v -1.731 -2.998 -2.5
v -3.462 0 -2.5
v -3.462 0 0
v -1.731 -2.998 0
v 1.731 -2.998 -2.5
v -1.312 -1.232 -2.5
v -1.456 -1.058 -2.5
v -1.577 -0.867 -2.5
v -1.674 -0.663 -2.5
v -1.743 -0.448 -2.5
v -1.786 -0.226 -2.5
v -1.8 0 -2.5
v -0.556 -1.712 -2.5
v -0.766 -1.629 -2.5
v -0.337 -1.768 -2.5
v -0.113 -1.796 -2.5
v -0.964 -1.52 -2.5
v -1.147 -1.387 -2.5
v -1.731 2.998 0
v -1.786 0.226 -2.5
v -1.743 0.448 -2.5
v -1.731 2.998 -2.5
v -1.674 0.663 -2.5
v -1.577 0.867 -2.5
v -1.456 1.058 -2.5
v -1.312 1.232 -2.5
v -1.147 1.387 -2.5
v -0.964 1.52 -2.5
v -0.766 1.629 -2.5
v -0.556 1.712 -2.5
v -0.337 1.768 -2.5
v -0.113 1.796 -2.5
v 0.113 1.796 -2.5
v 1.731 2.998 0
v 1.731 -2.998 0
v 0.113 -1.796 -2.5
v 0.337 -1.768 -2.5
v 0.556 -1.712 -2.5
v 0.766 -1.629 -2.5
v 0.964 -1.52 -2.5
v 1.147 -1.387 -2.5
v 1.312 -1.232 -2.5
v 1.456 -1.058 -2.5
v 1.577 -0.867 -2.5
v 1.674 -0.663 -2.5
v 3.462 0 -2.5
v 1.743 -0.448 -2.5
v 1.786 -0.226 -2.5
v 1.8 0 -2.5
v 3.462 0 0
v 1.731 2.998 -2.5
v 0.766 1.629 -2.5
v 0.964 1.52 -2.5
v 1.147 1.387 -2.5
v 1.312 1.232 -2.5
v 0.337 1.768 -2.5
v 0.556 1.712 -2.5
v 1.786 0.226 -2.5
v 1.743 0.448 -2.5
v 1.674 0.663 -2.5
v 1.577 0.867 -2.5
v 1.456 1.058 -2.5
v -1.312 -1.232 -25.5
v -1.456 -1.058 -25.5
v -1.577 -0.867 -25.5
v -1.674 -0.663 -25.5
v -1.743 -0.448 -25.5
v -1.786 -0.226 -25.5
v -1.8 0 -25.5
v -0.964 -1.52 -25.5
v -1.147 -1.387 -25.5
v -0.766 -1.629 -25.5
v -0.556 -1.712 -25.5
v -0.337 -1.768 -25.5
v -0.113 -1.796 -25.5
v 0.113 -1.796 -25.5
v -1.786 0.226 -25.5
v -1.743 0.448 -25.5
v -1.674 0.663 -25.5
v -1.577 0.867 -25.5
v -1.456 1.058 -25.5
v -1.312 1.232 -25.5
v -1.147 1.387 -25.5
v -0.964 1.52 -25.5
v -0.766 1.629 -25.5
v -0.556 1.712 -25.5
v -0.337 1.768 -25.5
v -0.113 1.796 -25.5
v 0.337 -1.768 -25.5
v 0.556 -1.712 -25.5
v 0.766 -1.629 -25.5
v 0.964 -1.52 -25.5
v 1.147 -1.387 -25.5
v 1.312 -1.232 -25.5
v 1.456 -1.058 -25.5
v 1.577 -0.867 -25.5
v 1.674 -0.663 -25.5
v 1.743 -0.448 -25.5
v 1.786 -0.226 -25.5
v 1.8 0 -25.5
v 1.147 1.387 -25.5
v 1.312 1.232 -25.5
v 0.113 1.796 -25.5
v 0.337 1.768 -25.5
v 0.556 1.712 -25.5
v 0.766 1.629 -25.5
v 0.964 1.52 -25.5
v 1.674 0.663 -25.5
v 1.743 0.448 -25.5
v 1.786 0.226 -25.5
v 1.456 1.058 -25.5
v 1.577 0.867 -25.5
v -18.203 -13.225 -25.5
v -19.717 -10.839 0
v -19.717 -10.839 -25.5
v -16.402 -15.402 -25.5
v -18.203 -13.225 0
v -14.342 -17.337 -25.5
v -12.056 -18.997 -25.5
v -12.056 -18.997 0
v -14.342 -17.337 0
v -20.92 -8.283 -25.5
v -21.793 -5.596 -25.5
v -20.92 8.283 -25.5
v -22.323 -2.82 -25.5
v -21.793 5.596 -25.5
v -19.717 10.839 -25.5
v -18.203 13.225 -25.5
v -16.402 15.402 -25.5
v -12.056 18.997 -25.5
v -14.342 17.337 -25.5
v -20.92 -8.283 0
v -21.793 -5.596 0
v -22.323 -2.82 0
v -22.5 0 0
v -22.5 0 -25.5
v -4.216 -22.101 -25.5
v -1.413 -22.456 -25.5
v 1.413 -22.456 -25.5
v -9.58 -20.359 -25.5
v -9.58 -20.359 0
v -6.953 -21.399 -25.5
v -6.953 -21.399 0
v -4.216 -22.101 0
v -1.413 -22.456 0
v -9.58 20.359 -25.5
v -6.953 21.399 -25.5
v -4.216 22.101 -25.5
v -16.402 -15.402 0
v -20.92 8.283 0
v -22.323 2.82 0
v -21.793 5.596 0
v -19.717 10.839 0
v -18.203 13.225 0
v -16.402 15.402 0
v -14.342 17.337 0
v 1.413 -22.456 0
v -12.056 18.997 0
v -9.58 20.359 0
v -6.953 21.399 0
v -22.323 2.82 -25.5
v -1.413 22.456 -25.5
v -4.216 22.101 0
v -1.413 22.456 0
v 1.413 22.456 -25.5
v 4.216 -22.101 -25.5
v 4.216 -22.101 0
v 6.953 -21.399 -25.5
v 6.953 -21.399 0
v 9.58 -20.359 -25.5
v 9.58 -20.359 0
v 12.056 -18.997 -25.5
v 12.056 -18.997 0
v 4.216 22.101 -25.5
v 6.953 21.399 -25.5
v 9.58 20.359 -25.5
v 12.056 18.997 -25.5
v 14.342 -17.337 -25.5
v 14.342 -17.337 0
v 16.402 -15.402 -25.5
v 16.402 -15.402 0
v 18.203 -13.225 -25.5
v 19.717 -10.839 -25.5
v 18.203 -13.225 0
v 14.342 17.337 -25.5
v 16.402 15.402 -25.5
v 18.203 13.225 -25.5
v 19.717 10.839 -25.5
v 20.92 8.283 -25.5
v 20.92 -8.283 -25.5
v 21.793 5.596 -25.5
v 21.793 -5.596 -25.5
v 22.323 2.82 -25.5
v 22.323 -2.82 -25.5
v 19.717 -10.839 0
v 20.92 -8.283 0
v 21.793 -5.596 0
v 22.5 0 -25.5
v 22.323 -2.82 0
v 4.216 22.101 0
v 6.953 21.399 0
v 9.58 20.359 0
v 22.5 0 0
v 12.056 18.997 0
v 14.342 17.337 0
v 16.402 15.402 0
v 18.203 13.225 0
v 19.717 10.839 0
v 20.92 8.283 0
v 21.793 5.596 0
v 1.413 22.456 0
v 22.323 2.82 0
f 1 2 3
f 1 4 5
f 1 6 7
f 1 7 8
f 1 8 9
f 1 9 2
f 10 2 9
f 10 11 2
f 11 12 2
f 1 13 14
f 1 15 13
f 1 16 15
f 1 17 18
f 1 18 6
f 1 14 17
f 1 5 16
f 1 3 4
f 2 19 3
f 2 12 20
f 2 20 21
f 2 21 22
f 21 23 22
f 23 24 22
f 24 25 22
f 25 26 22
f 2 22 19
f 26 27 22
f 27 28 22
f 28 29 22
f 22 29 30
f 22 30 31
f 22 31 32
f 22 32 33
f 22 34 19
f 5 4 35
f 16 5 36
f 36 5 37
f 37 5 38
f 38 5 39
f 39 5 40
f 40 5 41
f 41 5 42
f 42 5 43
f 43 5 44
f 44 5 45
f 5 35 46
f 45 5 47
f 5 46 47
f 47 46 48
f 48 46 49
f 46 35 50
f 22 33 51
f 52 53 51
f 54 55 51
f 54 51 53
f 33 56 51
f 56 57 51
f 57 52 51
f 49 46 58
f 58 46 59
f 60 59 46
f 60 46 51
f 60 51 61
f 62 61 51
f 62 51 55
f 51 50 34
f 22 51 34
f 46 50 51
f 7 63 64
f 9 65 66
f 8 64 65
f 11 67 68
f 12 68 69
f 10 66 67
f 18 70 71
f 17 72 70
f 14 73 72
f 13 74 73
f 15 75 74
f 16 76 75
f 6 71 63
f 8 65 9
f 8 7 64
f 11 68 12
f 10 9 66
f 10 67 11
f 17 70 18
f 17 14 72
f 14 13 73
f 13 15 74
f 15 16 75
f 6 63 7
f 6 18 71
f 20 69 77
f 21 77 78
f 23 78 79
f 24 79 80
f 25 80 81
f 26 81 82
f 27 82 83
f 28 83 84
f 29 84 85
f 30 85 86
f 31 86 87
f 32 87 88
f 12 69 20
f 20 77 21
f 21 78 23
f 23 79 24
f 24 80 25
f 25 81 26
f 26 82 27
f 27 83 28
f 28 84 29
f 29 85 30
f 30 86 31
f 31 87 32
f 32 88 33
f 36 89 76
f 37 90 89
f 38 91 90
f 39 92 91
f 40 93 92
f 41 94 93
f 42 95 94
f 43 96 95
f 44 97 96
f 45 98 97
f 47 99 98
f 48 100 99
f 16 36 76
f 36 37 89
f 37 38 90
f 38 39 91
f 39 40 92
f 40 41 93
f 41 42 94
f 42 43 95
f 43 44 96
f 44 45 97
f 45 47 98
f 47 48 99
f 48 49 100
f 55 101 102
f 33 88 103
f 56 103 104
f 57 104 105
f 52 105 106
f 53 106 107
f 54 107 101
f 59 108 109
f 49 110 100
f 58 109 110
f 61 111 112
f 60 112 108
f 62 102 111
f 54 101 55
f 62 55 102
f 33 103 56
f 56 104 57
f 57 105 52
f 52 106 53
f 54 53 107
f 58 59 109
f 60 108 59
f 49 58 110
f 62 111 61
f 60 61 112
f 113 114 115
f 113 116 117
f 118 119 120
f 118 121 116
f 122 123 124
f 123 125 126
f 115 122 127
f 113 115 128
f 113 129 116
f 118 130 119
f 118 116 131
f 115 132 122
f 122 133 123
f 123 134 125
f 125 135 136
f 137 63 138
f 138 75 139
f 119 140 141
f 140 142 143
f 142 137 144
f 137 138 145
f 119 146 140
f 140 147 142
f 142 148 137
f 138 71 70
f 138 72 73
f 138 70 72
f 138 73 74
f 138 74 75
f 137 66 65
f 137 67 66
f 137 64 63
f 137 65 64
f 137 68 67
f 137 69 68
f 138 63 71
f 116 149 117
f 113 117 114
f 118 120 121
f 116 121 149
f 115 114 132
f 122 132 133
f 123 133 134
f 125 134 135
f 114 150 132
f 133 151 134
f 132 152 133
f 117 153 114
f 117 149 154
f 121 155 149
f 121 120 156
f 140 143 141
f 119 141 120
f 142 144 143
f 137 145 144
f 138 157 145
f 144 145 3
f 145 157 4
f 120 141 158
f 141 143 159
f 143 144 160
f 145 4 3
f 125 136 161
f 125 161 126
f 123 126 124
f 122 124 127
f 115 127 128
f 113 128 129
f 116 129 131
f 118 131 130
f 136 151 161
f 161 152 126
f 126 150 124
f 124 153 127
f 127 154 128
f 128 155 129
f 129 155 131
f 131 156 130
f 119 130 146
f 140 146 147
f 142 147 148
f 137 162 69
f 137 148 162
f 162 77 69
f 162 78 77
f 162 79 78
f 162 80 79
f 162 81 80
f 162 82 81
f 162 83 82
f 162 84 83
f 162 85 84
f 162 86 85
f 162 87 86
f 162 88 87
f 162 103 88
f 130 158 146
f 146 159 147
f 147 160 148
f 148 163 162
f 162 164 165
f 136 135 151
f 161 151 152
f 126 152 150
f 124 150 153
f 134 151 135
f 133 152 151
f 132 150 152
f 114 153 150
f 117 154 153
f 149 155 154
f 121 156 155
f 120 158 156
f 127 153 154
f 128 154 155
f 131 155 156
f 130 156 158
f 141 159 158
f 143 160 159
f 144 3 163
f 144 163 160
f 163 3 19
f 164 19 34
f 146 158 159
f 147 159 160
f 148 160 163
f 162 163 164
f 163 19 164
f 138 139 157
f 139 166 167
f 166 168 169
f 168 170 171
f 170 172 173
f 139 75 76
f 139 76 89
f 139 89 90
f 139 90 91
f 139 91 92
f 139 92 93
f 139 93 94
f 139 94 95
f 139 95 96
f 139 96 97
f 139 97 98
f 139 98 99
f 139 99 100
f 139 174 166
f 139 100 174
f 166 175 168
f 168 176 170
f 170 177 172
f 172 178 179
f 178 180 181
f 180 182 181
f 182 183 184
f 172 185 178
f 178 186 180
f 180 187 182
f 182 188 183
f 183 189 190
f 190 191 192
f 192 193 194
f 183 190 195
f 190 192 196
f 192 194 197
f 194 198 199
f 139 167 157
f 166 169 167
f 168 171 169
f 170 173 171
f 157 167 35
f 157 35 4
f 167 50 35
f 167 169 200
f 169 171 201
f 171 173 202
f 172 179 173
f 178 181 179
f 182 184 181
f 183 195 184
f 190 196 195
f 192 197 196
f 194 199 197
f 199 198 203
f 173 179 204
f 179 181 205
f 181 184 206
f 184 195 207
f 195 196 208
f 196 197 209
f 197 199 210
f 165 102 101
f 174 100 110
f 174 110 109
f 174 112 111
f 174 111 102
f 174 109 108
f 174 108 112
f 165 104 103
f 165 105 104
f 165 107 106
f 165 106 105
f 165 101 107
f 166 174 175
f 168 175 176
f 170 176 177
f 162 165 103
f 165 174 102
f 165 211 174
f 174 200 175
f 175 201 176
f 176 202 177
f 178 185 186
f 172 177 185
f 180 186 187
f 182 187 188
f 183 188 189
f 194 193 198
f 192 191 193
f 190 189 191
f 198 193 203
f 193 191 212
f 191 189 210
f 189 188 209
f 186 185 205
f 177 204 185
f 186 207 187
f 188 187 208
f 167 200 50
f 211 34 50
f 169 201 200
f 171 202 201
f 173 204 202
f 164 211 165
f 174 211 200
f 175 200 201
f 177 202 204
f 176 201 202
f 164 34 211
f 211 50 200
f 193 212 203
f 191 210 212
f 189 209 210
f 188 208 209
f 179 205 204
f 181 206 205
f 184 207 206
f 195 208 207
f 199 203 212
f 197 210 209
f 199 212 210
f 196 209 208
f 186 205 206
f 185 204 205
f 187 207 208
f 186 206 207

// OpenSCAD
$fn = 50;


difference() {
	union() {
		translate(v = [0, 0, -25.5000000000]) {
			cylinder(h = 25.5000000000, r = 22.5000000000);
		}
	}
	union() {
		translate(v = [0, 0, 0]) {
			rotate(a = [0, 0, 0]) {
				difference() {
					union() {
						translate(v = [0, 0, -2.5000000000]) {
							linear_extrude(height = 2.5000000000) {
								polygon(points = [[3.4620000000, 0.0000000000], [1.7310000000, 2.9981799479], [-1.7310000000, 2.9981799479], [-3.4620000000, 0.0000000000], [-1.7310000000, -2.9981799479], [1.7310000000, -2.9981799479]]);
							}
						}
					}
					union();
				}
			}
		}
		#translate(v = [0, 0, -100.0000000000]) {
			cylinder(h = 200, r = 1.8000000000);
		}
	}
}
